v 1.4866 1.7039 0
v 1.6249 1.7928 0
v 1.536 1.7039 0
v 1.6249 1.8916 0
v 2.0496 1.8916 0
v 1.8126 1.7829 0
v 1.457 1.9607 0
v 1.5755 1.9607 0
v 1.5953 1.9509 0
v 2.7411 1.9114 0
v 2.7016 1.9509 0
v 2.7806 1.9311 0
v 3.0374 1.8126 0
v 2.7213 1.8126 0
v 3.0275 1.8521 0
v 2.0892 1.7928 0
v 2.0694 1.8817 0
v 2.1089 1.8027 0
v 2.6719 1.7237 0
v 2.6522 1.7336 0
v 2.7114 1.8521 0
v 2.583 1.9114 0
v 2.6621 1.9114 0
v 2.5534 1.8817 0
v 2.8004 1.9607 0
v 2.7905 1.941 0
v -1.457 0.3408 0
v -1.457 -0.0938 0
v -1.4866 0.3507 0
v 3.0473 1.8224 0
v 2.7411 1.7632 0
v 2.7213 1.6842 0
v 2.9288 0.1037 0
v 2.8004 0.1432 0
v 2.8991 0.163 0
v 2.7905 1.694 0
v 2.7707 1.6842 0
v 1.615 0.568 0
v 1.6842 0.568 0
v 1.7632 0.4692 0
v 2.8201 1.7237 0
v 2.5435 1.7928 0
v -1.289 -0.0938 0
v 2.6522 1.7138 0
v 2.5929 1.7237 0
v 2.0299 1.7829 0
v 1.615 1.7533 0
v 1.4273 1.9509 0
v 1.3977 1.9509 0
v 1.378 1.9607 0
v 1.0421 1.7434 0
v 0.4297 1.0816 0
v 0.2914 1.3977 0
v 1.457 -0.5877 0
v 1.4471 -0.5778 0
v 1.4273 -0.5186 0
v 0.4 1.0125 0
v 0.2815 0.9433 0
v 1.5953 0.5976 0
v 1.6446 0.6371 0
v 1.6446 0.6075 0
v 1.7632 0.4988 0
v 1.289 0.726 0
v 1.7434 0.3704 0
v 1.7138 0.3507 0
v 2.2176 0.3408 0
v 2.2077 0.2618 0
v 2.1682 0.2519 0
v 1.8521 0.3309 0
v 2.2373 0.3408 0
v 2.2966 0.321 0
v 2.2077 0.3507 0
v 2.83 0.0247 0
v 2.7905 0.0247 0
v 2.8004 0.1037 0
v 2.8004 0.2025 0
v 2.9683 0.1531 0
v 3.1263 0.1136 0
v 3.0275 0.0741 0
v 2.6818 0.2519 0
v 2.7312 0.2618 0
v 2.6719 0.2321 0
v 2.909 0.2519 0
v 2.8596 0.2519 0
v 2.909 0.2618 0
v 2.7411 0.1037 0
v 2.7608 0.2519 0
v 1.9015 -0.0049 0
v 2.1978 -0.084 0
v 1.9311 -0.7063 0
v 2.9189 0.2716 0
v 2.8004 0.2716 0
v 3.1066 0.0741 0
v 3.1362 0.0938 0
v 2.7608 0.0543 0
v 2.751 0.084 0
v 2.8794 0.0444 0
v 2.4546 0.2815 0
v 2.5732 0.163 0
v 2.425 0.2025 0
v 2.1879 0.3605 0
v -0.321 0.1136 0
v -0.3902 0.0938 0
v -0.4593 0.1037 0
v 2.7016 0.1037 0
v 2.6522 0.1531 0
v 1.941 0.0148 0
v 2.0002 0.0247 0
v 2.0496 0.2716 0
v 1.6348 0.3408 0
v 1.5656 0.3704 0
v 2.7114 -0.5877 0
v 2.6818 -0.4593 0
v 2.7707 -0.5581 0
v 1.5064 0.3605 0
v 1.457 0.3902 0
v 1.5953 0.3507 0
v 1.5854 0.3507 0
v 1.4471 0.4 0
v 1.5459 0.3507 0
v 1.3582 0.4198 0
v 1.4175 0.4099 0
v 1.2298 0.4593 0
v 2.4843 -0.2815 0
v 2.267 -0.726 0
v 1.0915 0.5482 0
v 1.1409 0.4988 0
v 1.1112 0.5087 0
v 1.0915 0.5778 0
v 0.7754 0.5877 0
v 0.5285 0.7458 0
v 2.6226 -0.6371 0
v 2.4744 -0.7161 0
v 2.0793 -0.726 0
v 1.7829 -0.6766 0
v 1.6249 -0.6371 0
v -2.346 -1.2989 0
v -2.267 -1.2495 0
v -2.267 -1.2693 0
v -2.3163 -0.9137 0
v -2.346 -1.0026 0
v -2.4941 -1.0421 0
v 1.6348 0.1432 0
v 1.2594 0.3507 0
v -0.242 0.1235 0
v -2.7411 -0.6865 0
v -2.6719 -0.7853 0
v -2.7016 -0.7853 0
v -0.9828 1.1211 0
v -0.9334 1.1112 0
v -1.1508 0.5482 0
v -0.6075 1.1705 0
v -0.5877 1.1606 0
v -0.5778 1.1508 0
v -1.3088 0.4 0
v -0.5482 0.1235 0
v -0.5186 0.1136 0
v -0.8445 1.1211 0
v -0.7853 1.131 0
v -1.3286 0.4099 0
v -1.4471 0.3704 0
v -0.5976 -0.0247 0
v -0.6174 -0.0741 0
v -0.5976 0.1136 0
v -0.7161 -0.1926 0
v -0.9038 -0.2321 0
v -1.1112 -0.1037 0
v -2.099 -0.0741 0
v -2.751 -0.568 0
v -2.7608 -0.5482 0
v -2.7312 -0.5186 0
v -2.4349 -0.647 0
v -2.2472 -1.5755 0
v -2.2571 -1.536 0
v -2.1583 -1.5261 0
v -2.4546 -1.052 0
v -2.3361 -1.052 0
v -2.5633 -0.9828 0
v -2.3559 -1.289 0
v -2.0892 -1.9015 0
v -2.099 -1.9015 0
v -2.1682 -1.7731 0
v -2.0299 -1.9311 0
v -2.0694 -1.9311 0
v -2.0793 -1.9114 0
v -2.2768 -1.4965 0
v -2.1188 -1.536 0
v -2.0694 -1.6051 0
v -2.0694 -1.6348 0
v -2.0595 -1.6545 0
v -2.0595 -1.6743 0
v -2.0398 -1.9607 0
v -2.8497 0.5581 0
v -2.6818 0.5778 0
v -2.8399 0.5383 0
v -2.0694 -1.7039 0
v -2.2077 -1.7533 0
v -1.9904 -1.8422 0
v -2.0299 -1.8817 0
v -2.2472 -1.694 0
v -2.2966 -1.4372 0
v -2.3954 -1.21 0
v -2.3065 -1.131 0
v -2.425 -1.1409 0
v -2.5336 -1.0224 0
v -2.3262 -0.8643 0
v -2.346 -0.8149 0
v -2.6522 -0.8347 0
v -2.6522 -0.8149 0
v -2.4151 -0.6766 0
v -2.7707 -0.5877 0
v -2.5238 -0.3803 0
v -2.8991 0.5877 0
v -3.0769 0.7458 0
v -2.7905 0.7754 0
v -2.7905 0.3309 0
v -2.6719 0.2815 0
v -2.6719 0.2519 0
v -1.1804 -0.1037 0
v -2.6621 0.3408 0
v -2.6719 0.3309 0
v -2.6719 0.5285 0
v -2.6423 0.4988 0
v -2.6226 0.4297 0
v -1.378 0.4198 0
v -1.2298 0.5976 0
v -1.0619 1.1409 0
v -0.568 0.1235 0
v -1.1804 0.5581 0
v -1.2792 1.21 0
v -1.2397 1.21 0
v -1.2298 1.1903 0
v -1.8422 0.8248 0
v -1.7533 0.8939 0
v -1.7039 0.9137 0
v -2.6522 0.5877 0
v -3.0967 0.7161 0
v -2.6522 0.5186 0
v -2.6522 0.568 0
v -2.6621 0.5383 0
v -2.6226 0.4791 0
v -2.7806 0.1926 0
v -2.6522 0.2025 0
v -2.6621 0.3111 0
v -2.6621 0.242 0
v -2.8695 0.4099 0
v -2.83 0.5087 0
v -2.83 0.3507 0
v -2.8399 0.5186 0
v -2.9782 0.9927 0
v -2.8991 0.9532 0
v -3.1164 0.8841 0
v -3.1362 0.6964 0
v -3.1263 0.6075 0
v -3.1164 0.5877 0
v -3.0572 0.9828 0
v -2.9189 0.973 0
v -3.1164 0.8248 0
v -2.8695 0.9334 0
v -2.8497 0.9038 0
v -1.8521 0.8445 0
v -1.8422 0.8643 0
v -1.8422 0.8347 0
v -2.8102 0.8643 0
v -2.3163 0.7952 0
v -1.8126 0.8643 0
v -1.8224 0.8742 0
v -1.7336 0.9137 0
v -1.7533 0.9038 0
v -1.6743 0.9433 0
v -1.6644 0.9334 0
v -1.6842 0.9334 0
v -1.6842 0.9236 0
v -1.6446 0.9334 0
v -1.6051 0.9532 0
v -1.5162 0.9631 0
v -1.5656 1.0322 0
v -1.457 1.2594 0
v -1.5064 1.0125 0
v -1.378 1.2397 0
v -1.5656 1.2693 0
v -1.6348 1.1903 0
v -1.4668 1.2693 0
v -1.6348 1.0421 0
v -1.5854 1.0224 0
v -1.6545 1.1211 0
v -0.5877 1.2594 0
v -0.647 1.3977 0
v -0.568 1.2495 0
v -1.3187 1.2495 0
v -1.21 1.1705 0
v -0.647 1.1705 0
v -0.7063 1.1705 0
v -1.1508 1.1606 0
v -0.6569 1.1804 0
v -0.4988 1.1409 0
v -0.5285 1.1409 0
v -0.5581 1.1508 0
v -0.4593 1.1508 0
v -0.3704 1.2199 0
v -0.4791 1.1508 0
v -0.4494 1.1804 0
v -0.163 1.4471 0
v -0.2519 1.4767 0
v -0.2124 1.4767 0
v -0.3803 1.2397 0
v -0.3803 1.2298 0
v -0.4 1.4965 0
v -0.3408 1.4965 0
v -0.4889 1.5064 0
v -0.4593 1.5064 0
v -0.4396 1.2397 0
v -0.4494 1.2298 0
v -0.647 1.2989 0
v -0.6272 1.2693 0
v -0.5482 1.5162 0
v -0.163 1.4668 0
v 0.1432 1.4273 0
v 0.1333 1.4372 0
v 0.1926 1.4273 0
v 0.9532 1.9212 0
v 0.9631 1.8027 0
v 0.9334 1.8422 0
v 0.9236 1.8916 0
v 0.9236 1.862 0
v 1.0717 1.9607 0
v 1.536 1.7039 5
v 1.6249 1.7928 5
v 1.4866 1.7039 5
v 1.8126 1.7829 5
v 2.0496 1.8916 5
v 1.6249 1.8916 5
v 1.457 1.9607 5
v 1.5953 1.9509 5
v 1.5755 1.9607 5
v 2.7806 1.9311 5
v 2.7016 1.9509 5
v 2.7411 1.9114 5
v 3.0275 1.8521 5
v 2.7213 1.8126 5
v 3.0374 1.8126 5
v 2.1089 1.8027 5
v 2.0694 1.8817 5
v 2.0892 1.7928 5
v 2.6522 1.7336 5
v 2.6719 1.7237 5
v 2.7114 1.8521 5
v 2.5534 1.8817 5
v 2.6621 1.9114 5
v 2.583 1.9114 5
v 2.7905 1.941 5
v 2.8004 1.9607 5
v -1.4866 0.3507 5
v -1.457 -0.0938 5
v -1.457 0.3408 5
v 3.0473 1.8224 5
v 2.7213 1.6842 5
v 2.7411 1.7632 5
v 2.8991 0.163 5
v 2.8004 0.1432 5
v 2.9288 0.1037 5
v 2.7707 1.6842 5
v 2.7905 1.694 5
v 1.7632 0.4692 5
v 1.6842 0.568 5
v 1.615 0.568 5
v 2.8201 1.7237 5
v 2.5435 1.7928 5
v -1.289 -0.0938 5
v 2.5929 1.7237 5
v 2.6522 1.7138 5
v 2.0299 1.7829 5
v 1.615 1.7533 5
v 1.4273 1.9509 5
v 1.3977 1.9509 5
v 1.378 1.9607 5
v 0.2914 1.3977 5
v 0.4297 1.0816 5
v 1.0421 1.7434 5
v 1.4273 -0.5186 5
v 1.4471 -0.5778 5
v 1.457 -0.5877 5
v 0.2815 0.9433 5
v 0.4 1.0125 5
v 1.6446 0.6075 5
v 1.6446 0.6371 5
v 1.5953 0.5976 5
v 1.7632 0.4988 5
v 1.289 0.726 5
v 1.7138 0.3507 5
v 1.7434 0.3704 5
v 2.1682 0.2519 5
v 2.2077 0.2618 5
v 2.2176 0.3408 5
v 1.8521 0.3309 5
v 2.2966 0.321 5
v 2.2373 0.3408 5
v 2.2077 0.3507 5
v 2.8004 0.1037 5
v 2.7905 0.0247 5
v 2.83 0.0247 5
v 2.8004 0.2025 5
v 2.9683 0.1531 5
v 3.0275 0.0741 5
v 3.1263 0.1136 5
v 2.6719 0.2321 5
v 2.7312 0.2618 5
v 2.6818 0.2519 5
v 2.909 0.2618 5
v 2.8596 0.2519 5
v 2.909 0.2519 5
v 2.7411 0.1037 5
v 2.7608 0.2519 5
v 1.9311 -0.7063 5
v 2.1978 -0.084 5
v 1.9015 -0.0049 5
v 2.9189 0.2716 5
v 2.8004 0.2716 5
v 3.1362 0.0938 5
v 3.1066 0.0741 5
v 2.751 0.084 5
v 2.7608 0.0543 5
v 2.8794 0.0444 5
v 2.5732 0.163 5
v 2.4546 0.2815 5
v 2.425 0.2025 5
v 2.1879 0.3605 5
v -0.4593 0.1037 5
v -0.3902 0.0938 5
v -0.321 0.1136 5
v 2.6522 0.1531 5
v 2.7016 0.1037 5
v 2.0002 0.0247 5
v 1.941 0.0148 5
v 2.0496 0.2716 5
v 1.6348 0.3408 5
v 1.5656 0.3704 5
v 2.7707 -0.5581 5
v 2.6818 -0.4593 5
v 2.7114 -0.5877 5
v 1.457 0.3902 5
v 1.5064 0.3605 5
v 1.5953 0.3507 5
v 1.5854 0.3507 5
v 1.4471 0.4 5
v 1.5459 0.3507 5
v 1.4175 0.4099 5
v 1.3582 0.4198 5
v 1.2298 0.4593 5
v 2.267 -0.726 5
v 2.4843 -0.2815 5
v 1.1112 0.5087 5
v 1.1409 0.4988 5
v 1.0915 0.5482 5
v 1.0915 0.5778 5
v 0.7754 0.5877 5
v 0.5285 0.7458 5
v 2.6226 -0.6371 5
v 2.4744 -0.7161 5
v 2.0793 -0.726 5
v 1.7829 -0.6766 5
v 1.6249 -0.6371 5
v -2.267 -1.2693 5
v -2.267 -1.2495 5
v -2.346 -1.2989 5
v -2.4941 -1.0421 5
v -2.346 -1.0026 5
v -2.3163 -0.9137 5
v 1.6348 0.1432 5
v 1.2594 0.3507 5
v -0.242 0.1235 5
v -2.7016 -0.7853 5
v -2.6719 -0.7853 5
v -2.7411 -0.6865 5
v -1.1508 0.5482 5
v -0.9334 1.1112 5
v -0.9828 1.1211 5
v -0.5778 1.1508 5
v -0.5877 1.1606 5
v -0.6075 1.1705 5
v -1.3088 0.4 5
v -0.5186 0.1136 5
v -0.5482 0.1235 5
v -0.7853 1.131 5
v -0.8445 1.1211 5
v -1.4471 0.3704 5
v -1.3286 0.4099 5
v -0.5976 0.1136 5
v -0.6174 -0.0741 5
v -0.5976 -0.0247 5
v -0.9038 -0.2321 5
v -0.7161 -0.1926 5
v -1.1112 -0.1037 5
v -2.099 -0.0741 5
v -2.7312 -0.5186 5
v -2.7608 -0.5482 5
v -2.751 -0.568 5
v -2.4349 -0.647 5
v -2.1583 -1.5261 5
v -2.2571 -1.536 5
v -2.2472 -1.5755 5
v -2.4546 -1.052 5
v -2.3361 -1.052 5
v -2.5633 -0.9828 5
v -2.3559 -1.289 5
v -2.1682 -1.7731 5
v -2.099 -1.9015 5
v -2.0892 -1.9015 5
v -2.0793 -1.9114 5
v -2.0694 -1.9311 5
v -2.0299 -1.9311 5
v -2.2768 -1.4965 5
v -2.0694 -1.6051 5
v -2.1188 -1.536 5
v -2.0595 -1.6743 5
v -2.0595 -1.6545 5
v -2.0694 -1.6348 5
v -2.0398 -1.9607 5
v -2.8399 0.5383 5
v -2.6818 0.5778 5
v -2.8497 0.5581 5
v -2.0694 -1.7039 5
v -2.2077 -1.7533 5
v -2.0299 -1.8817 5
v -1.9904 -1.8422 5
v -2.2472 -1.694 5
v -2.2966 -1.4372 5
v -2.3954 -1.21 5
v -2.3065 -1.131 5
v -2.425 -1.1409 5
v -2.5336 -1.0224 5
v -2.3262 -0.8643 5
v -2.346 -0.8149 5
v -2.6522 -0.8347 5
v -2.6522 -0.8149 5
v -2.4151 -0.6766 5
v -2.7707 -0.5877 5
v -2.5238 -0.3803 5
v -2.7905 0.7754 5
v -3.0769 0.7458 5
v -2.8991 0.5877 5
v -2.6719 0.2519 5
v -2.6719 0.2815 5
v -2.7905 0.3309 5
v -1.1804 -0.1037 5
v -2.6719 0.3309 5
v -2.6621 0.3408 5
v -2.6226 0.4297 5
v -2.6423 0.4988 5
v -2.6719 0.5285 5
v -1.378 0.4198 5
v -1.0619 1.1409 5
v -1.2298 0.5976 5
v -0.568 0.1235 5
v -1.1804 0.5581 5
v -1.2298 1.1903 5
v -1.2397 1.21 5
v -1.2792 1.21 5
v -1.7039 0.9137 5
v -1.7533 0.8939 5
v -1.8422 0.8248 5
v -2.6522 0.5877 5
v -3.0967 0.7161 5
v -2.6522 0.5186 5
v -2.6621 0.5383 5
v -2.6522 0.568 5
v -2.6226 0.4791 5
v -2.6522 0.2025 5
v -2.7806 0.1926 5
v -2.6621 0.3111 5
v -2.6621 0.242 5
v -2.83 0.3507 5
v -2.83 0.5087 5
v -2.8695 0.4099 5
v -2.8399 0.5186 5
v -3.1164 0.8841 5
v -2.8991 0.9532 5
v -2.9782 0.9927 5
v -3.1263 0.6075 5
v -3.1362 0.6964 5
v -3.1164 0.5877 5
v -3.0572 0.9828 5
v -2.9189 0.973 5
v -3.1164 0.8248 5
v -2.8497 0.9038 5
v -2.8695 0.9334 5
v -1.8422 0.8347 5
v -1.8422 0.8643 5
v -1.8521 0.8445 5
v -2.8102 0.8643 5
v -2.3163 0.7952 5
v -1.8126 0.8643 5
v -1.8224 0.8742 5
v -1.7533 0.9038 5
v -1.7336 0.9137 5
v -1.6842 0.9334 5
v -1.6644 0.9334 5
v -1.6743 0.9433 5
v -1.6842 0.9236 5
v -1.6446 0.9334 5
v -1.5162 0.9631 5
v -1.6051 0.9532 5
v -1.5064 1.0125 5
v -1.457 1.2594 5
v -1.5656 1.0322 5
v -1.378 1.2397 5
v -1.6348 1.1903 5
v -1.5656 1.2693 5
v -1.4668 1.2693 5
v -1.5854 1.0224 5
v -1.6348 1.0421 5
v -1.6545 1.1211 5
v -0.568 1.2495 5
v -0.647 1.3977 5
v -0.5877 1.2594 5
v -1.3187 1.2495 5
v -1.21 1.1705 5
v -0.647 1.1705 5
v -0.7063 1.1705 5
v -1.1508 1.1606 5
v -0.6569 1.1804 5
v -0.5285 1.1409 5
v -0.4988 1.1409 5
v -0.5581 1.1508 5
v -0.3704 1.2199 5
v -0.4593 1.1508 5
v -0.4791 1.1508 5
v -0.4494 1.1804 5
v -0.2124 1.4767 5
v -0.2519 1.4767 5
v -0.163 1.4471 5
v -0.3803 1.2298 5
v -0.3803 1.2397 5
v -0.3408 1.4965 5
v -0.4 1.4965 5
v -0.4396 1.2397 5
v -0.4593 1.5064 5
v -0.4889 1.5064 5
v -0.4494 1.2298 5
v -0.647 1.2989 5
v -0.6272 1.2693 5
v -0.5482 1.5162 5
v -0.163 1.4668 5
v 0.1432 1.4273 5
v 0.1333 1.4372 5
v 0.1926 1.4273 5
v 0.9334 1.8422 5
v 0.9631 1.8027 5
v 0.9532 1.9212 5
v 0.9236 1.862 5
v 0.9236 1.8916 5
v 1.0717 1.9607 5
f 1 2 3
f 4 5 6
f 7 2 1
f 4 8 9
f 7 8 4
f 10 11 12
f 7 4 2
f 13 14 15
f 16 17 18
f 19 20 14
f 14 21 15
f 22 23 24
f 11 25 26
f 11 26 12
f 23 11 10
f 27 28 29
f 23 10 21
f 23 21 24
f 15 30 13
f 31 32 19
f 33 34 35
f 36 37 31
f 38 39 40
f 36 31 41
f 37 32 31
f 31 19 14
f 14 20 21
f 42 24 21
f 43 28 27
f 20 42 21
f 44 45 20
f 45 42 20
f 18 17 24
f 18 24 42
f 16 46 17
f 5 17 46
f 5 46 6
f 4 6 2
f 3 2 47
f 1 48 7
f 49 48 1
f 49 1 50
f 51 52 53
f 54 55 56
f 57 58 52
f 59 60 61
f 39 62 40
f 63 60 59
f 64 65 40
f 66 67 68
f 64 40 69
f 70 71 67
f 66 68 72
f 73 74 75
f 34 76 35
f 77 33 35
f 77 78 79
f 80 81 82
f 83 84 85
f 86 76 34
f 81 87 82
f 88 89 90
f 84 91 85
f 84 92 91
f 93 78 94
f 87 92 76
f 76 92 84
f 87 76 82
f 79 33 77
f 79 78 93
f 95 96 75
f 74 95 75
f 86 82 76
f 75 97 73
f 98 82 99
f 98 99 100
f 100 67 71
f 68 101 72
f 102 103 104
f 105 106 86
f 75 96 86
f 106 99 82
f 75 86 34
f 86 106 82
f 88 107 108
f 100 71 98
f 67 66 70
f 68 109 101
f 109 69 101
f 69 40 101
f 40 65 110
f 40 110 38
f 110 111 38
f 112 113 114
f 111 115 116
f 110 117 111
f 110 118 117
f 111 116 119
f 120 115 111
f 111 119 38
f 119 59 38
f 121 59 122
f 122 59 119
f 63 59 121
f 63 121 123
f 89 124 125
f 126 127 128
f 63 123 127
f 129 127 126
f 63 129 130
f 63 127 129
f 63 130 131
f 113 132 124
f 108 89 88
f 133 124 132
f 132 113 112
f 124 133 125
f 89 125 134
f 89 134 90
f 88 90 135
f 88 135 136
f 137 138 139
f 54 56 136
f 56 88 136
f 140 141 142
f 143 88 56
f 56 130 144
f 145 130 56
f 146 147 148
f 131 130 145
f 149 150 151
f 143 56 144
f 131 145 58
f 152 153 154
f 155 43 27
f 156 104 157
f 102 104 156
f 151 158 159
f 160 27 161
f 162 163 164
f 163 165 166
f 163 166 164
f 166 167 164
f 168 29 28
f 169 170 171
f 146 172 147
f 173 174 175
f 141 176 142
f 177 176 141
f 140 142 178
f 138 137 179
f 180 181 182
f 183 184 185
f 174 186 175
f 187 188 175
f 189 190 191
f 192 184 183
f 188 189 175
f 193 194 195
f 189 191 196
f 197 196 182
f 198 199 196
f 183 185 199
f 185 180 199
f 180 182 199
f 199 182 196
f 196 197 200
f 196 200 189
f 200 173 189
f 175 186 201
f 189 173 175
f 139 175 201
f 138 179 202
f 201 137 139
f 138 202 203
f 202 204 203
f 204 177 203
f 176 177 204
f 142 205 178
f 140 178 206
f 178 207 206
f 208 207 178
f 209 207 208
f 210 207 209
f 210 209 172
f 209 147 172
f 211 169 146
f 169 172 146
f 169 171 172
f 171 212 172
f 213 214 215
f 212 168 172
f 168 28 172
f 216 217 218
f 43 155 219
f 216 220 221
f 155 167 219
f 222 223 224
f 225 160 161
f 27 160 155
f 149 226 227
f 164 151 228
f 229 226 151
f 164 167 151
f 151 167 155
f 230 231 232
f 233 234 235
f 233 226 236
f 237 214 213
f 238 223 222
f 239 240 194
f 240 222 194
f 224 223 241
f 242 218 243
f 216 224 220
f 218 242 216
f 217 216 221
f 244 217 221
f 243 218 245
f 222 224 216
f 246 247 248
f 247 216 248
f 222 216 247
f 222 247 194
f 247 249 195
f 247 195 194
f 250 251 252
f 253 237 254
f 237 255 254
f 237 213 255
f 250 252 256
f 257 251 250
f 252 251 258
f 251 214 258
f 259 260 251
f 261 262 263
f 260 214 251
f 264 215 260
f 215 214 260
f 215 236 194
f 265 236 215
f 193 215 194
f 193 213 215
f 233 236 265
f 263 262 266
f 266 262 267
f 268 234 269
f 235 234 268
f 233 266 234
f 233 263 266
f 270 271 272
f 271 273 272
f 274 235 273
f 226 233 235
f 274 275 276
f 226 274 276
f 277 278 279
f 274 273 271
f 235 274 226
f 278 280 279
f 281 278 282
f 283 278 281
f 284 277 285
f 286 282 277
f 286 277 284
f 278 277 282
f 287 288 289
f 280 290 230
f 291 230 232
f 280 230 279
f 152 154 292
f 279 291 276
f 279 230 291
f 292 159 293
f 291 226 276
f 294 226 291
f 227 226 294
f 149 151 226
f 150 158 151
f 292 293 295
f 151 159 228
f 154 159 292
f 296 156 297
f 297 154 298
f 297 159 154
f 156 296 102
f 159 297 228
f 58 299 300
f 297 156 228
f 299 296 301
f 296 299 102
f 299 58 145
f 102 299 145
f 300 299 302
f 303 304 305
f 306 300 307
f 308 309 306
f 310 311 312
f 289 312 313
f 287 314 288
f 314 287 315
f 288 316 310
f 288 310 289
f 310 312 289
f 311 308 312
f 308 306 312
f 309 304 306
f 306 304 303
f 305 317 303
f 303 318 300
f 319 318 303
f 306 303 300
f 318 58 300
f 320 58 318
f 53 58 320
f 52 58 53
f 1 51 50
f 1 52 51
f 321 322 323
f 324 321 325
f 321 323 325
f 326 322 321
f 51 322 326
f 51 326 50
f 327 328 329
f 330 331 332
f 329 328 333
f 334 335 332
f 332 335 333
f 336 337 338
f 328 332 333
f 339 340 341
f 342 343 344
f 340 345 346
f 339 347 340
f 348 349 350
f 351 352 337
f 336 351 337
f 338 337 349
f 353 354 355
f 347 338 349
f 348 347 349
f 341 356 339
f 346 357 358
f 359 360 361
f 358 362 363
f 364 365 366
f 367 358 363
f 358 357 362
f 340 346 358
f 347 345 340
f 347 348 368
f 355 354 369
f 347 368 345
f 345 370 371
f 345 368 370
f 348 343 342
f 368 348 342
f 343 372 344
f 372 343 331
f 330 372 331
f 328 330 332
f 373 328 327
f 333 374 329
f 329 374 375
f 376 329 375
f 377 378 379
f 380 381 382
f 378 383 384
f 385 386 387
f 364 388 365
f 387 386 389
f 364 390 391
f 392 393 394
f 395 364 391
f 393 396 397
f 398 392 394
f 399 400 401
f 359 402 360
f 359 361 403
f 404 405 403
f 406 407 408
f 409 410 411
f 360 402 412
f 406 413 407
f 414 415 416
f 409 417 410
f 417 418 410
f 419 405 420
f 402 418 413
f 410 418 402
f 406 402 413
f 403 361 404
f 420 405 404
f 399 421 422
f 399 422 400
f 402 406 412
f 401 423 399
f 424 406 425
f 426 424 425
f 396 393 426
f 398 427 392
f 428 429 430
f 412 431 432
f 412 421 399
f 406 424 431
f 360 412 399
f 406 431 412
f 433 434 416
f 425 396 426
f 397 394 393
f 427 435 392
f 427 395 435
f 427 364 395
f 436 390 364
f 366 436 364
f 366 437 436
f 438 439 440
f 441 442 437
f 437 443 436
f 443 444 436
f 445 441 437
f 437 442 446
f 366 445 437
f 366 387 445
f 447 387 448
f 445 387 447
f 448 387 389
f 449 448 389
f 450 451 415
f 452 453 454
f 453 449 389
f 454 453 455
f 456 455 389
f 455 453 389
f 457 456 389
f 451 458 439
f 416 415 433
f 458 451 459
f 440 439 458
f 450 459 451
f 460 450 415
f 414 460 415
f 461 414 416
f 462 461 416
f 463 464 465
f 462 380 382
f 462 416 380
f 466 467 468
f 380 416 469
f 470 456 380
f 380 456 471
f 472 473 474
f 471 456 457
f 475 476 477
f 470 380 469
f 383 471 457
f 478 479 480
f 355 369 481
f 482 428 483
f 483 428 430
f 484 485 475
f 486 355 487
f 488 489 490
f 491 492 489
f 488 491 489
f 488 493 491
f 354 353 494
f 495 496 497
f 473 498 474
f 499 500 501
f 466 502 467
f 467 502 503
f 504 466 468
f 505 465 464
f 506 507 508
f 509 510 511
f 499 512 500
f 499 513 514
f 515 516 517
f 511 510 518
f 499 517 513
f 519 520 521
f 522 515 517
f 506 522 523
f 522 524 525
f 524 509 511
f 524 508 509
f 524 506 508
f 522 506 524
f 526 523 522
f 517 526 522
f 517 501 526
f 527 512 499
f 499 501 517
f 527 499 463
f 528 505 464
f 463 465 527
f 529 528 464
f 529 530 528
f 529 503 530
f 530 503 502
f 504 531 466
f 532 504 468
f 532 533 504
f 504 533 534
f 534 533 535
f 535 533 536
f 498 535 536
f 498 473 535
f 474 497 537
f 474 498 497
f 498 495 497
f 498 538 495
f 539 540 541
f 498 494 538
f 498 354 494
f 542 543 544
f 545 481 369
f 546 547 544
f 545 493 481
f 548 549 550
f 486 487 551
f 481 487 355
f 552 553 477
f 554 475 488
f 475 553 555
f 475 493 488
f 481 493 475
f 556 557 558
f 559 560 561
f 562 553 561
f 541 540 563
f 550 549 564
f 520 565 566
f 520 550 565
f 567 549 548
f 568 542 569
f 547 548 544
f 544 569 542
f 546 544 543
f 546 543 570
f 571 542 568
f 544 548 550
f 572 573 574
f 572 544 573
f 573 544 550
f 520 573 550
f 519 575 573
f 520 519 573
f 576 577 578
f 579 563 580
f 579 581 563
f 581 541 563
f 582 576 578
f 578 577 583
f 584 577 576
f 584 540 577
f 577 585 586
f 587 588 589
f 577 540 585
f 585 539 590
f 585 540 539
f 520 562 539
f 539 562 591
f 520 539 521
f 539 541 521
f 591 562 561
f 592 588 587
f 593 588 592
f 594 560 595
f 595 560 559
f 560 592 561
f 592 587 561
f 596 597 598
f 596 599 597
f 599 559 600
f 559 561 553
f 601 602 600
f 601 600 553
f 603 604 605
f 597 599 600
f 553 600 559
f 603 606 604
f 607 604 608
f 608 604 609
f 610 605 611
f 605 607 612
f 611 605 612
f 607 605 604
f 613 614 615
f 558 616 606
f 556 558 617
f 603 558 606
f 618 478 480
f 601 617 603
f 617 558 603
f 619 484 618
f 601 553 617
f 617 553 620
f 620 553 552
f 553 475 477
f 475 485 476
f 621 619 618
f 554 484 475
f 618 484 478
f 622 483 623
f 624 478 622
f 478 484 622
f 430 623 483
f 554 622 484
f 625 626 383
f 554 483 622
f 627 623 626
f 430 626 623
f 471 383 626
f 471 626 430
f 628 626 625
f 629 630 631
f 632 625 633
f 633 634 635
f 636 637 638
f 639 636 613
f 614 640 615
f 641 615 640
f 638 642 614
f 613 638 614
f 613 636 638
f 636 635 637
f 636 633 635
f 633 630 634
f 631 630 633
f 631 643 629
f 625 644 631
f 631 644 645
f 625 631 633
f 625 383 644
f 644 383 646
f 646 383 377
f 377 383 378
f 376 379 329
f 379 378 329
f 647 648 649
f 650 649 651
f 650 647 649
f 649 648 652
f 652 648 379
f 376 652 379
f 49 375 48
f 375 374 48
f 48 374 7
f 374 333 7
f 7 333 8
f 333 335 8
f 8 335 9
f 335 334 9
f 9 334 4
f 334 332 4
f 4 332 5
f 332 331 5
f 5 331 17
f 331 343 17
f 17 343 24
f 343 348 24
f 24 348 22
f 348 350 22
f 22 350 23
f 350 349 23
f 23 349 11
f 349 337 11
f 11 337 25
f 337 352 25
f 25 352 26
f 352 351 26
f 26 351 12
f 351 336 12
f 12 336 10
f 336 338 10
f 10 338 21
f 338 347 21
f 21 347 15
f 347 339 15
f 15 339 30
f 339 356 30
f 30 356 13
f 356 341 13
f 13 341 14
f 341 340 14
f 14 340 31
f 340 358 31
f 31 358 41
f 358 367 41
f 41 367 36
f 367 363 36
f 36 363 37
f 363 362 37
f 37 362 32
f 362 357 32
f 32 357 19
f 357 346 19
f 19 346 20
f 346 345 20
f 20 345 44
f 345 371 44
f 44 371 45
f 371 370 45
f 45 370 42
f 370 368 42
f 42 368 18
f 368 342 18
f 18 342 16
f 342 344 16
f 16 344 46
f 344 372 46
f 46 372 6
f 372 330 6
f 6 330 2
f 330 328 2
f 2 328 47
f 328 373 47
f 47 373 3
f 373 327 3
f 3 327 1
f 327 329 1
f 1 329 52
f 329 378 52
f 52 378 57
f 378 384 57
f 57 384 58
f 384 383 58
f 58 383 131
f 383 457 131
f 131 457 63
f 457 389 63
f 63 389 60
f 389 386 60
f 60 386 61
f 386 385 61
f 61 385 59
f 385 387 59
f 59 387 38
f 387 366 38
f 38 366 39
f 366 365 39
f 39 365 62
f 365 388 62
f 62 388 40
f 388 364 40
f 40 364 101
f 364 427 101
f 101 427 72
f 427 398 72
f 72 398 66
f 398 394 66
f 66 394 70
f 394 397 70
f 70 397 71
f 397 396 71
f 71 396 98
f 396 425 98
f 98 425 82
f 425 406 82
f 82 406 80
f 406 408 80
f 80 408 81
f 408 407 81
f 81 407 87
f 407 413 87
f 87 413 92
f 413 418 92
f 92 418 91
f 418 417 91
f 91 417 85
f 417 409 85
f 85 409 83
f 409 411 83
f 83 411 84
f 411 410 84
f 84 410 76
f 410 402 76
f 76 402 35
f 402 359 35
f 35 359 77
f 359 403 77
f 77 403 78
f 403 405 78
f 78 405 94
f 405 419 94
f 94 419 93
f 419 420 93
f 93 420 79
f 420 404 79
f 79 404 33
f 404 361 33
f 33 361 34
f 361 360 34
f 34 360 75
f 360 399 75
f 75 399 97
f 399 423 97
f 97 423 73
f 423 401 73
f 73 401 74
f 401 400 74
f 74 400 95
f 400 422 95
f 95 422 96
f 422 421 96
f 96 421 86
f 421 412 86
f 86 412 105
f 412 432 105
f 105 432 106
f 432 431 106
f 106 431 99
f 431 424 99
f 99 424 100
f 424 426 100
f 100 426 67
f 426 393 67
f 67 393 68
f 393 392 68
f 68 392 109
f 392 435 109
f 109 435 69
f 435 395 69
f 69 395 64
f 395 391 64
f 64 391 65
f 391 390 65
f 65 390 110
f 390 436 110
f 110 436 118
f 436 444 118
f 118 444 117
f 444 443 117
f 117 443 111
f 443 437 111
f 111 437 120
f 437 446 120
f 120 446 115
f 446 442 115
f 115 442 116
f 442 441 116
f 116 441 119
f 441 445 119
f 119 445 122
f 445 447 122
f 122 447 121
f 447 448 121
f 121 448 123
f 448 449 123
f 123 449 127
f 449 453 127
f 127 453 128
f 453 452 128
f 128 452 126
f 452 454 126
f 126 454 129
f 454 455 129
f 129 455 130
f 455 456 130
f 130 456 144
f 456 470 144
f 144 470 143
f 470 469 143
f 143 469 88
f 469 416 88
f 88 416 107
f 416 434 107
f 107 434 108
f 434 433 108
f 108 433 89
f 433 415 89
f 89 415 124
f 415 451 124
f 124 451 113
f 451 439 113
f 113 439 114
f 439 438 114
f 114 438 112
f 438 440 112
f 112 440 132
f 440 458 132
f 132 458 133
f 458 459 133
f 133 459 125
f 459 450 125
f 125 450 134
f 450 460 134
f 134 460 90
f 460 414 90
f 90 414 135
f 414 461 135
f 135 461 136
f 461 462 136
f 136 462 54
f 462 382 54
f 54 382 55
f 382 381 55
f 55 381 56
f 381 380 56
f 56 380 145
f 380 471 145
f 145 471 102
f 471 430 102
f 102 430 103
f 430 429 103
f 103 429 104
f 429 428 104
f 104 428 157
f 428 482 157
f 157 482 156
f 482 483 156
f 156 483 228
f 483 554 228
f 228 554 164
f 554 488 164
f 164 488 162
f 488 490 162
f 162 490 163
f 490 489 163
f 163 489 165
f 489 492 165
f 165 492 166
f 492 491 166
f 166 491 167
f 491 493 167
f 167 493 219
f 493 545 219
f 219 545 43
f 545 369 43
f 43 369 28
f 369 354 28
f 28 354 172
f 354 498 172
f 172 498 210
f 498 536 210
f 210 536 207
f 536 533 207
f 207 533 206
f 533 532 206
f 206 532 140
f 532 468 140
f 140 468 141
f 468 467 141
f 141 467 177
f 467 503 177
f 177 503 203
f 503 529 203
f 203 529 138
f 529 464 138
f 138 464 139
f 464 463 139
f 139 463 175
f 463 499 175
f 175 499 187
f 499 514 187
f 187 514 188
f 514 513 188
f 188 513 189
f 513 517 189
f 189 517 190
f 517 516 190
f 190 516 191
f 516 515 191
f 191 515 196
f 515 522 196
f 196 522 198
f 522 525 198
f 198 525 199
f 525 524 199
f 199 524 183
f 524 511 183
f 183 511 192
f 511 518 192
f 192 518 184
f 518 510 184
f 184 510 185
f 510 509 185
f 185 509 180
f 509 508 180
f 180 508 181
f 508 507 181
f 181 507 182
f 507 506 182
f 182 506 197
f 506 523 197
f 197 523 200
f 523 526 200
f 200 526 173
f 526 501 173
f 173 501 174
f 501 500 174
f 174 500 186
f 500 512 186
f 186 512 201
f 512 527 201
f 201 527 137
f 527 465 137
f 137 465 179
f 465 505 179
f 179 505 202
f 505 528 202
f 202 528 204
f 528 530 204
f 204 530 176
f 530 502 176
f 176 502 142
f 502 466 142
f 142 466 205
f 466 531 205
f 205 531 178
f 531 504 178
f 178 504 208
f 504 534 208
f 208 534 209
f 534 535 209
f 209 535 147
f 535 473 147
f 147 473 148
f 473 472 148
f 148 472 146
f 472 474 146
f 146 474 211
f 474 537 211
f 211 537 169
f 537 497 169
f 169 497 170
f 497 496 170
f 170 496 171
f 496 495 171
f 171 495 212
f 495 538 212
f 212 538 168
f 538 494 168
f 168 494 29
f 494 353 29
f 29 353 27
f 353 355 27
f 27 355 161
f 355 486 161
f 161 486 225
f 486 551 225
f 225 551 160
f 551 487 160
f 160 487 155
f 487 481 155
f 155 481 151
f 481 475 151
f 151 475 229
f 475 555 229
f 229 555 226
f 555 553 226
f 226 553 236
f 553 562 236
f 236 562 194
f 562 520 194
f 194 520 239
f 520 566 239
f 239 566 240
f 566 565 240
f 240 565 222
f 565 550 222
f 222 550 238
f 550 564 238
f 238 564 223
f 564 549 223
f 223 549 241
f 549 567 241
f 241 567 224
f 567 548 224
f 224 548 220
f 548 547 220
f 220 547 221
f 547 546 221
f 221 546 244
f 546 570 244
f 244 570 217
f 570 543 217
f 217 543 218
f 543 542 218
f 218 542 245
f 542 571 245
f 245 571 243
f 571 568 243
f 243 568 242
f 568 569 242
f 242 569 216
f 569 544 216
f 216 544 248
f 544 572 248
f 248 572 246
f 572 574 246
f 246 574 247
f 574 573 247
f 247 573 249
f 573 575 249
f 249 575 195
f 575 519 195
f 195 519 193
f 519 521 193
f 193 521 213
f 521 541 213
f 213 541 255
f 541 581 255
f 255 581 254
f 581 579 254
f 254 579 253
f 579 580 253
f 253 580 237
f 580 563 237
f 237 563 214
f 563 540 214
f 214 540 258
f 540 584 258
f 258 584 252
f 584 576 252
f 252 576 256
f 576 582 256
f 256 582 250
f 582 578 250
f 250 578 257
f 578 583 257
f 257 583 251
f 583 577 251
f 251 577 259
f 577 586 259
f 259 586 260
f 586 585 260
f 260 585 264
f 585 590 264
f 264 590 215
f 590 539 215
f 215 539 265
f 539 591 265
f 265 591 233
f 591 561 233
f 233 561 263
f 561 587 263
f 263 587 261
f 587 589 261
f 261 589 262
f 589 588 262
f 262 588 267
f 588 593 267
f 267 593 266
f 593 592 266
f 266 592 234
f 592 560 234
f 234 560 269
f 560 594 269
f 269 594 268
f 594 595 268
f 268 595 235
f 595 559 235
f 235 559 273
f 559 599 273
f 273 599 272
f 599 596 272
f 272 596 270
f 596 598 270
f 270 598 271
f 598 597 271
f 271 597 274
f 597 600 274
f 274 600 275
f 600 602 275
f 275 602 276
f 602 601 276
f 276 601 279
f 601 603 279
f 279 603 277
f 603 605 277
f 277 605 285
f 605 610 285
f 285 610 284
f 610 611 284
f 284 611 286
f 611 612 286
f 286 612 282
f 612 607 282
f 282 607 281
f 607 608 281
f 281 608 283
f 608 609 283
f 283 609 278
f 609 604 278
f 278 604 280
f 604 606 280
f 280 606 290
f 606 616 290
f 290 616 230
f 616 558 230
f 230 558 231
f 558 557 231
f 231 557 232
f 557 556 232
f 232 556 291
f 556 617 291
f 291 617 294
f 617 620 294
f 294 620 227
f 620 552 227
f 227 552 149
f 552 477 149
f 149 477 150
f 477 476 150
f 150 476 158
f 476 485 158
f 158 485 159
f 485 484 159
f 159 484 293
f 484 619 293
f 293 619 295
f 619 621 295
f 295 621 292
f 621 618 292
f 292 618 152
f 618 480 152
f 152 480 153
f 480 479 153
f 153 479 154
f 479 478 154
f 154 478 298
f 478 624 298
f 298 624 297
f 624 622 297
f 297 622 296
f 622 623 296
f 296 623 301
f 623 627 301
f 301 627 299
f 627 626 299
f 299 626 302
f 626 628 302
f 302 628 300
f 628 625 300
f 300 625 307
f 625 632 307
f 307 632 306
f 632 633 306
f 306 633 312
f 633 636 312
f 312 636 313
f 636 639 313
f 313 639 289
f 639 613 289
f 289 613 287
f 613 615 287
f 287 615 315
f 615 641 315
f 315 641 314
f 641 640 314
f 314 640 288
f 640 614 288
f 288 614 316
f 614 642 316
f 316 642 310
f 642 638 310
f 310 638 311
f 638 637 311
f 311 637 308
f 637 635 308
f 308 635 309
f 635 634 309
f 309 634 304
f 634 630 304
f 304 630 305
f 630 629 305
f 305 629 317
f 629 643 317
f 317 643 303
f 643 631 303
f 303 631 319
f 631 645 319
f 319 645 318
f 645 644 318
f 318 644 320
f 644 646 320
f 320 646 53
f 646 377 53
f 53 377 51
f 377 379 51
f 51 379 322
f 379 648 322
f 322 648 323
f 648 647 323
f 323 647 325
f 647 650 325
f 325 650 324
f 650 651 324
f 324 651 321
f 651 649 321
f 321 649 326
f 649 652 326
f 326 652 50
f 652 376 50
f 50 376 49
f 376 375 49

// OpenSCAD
// Module names are of the form poly_<inkscape-path-id>().  As a result,
// you can associate a polygon in this OpenSCAD program with the corresponding
// SVG element in the Inkscape document by looking for the XML element with
// the attribute id="inkscape-path-id".

// fudge value is used to ensure that subtracted solids are a tad taller
// in the z dimension than the polygon being subtracted from.  This helps
// keep the resulting .stl file manifold.
fudge = 0.1;

module poly_path4383(h)
{
  scale([25.4/90, -25.4/90, 1]) union()
  {
    linear_extrude(height=h)
      polygon([[1.032500,-4.952500],[3.692500,-6.177500],[3.552500,-6.282500],[3.412500,-6.387500],[3.307500,-6.527500],[3.272500,-6.597500],[3.272500,-6.702500],[3.377500,-6.807500],[3.797500,-6.947500],[4.882500,-6.947500],[4.952500,-6.912500],[5.057500,-6.912500],[5.162500,-6.947500],[5.582500,-6.947500],[5.652500,-6.912500],[5.757500,-6.702500],[7.157500,-6.702500],[7.262500,-6.702500],[7.332500,-6.667500],[7.437500,-6.667500],[9.047500,-6.667500],[9.152500,-6.772500],[9.432500,-6.772500],[9.572500,-6.912500],[9.922500,-6.947500],[9.887500,-6.877500],[9.852500,-6.842500],[9.712500,-6.772500],[9.607500,-6.562500],[10.657500,-6.562500],[10.727500,-6.562500],[10.797500,-6.457500],[10.762500,-6.422500],[10.552500,-6.422500],[9.642500,-6.422500],[9.712500,-6.247500],[9.992500,-6.107500],[9.957500,-6.072500],[9.887500,-6.002500],[9.817500,-5.967500],[9.642500,-5.967500],[9.467500,-6.107500],[9.397500,-6.142500],[9.397500,-6.072500],[9.187500,-6.107500],[9.012500,-6.352500],[7.472500,-6.387500],[7.402500,-6.352500],[7.192500,-6.317500],[6.422500,-6.317500],[5.757500,-6.352500],[5.722500,-6.212500],[5.442500,-6.037500],[5.267500,-6.037500],[1.522500,-3.832500],[1.417500,-3.587500],[0.997500,-3.342500],[1.872500,-2.642500],[4.567500,-2.572500],[5.827500,-2.257500],[5.827500,-2.152500],[5.652500,-2.117500],[5.722500,-2.012500],[5.967500,-2.012500],[6.247500,-1.767500],[6.247500,-1.662500],[7.752500,-1.277500],[7.822500,-1.242500],[7.857500,-1.207500],[7.927500,-1.207500],[8.137500,-1.137500],[8.697500,-0.997500],[9.467500,-0.822500],[9.502500,-0.892500],[9.677500,-0.927500],[9.782500,-0.892500],[9.922500,-0.962500],[10.342500,-0.962500],[10.307500,-0.927500],[10.307500,-0.892500],[10.132500,-0.892500],[9.922500,-0.717500],[10.097500,-0.647500],[10.272500,-0.577500],[10.517500,-0.542500],[11.077500,-0.402500],[11.112500,-0.332500],[11.007500,-0.262500],[10.727500,-0.262500],[10.377500,-0.367500],[9.922500,-0.507500],[9.922500,-0.367500],[10.202500,-0.157500],[10.027500,-0.087500],[9.887500,-0.087500],[9.782500,-0.192500],[9.747500,-0.297500],[9.712500,-0.367500],[9.572500,-0.367500],[9.397500,-0.542500],[9.117500,-0.577500],[8.592500,-0.717500],[7.822500,-0.927500],[7.682500,-0.892500],[7.262500,-0.962500],[6.912500,-1.067500],[6.562500,-1.172500],[6.177500,-1.312500],[6.072500,-1.242500],[5.792500,-1.207500],[5.617500,-1.242500],[5.652500,-1.242500],[5.547500,-1.312500],[5.477500,-1.242500],[5.337500,-1.277500],[5.162500,-1.382500],[5.127500,-1.417500],[5.022500,-1.452500],[4.812500,-1.487500],[4.357500,-1.627500],[4.042500,-1.767500],[3.937500,-1.802500],[3.867500,-1.942500],[3.867500,-2.047500],[2.747500,-2.082500],[4.462500,-1.242500],[5.792500,-0.507500],[6.737500,0.017500],[6.877500,-0.052500],[7.087500,-0.087500],[7.787500,0.297500],[8.802500,0.997500],[9.502500,1.627500],[9.817500,1.977500],[9.607500,2.082500],[9.292500,2.257500],[8.767500,2.537500],[8.032500,2.572500],[7.367500,2.572500],[6.842500,2.502500],[6.317500,2.397500],[5.757500,2.257500],[5.162500,2.082500],[5.127500,2.047500],[5.057500,1.837500],[-0.857500,-0.437500],[-1.137500,-0.402500],[-1.382500,-0.332500],[-1.627500,-0.367500],[-1.837500,-0.402500],[-1.942500,-0.437500],[-2.012500,-0.437500],[-2.117500,-0.402500],[-2.117500,-0.157500],[-2.117500,0.087500],[-2.187500,0.262500],[-2.537500,0.682500],[-3.202500,0.822500],[-3.937500,0.367500],[-4.182500,0.367500],[-4.567500,0.332500],[-5.162500,0.332500],[-8.627500,2.292500],[-8.557500,2.397500],[-8.452500,2.607500],[-8.382500,2.747500],[-8.312500,2.887500],[-8.242500,3.062500],[-8.207500,3.237500],[-8.312500,3.552500],[-8.277500,3.727500],[-8.172500,4.007500],[-8.032500,4.427500],[-8.032500,4.497500],[-7.647500,5.407500],[-7.507500,5.442500],[-7.332500,5.687500],[-7.332500,5.792500],[-7.297500,5.862500],[-7.297500,5.932500],[-7.332500,6.037500],[-7.052500,6.527500],[-7.192500,6.667500],[-7.192500,6.737500],[-7.192500,6.842500],[-7.227500,6.947500],[-7.297500,6.877500],[-7.332500,6.842500],[-7.367500,6.772500],[-7.402500,6.737500],[-7.437500,6.737500],[-7.682500,6.282500],[-7.822500,6.212500],[-7.962500,6.002500],[-7.962500,5.582500],[-7.997500,5.442500],[-8.067500,5.302500],[-8.137500,5.092500],[-8.312500,4.602500],[-8.347500,4.567500],[-8.417500,4.427500],[-8.487500,4.287500],[-8.592500,4.042500],[-8.697500,3.727500],[-8.837500,3.692500],[-8.977500,3.622500],[-9.082500,3.482500],[-9.187500,3.307500],[-9.292500,3.132500],[-9.397500,2.957500],[-9.397500,2.887500],[-9.467500,2.782500],[-9.502500,2.782500],[-9.572500,2.782500],[-9.712500,2.432500],[-9.817500,2.082500],[-9.747500,2.012500],[-9.782500,1.942500],[-9.677500,1.837500],[-8.942500,1.347500],[-7.437500,0.262500],[-5.267500,-1.242500],[-5.162500,-1.207500],[-5.127500,-1.312500],[-4.882500,-1.487500],[-4.707500,-1.452500],[-4.637500,-1.417500],[-4.077500,-1.942500],[-4.182500,-1.977500],[-4.357500,-2.117500],[-9.397500,-2.082500],[-9.502500,-2.047500],[-9.397500,-2.012500],[-9.432500,-1.907500],[-9.467500,-1.872500],[-9.397500,-1.837500],[-9.362500,-1.767500],[-9.292500,-1.697500],[-9.292500,-1.522500],[-9.432500,-1.207500],[-9.467500,-1.172500],[-9.432500,-1.102500],[-9.467500,-0.997500],[-9.467500,-0.962500],[-9.467500,-0.892500],[-9.432500,-0.857500],[-9.397500,-0.717500],[-9.852500,-0.682500],[-9.887500,-1.172500],[-10.027500,-1.242500],[-10.167500,-1.452500],[-10.027500,-1.802500],[-10.062500,-1.837500],[-10.062500,-1.907500],[-10.097500,-1.977500],[-10.272500,-2.082500],[-11.042500,-2.082500],[-11.077500,-2.152500],[-11.112500,-2.467500],[-10.972500,-2.537500],[-10.902500,-2.642500],[-11.042500,-2.922500],[-11.042500,-3.132500],[-10.832500,-3.482500],[-10.552500,-3.517500],[-10.342500,-3.447500],[-10.272500,-3.377500],[-10.167500,-3.307500],[-10.097500,-3.202500],[-9.957500,-3.062500],[-9.887500,-2.747500],[-8.207500,-2.817500],[-6.527500,-2.922500],[-6.527500,-2.957500],[-6.562500,-2.992500],[-6.527500,-3.062500],[-6.457500,-3.097500],[-6.422500,-3.062500],[-6.212500,-3.167500],[-6.212500,-3.202500],[-6.142500,-3.237500],[-6.037500,-3.237500],[-5.967500,-3.272500],[-5.967500,-3.307500],[-5.932500,-3.342500],[-5.897500,-3.307500],[-5.862500,-3.307500],[-5.827500,-3.307500],[-5.687500,-3.377500],[-5.372500,-3.412500],[-5.337500,-3.587500],[-5.547500,-3.657500],[-5.617500,-3.622500],[-5.792500,-3.692500],[-5.862500,-3.972500],[-5.792500,-4.217500],[-5.547500,-4.497500],[-5.197500,-4.497500],[-5.162500,-4.462500],[-4.882500,-4.392500],[-4.672500,-4.427500],[-4.532500,-4.287500],[-4.392500,-4.287500],[-4.357500,-4.217500],[-4.287500,-4.147500],[-4.077500,-4.112500],[-3.762500,-4.042500],[-3.482500,-3.972500],[-3.307500,-3.937500],[-2.992500,-3.972500],[-2.782500,-4.007500],[-2.642500,-4.077500],[-2.502500,-4.147500],[-2.327500,-4.182500],[-2.292500,-4.147500],[-2.222500,-4.147500],[-2.152500,-4.147500],[-2.082500,-4.112500],[-2.047500,-4.077500],[-1.977500,-4.077500],[-1.872500,-4.042500],[-1.767500,-4.042500],[-1.697500,-4.077500],[-1.627500,-4.077500],[-1.592500,-4.182500],[-1.312500,-4.322500],[-1.347500,-4.357500],[-1.347500,-4.392500],[-1.557500,-4.392500],[-1.592500,-4.357500],[-2.012500,-4.427500],[-2.082500,-4.462500],[-2.222500,-4.497500],[-2.292500,-4.602500],[-2.292500,-4.952500],[-1.942500,-5.372500],[-1.732500,-5.337500],[-1.697500,-5.337500],[-1.627500,-5.337500],[-1.417500,-5.302500],[-1.207500,-5.302500],[-0.892500,-5.232500],[-0.752500,-5.232500],[-0.577500,-5.197500],[-0.577500,-5.127500],[0.472500,-5.092500],[0.507500,-5.057500],[0.682500,-5.057500],[1.032500,-4.952500]]);
  }
}

poly_path4383(5);
